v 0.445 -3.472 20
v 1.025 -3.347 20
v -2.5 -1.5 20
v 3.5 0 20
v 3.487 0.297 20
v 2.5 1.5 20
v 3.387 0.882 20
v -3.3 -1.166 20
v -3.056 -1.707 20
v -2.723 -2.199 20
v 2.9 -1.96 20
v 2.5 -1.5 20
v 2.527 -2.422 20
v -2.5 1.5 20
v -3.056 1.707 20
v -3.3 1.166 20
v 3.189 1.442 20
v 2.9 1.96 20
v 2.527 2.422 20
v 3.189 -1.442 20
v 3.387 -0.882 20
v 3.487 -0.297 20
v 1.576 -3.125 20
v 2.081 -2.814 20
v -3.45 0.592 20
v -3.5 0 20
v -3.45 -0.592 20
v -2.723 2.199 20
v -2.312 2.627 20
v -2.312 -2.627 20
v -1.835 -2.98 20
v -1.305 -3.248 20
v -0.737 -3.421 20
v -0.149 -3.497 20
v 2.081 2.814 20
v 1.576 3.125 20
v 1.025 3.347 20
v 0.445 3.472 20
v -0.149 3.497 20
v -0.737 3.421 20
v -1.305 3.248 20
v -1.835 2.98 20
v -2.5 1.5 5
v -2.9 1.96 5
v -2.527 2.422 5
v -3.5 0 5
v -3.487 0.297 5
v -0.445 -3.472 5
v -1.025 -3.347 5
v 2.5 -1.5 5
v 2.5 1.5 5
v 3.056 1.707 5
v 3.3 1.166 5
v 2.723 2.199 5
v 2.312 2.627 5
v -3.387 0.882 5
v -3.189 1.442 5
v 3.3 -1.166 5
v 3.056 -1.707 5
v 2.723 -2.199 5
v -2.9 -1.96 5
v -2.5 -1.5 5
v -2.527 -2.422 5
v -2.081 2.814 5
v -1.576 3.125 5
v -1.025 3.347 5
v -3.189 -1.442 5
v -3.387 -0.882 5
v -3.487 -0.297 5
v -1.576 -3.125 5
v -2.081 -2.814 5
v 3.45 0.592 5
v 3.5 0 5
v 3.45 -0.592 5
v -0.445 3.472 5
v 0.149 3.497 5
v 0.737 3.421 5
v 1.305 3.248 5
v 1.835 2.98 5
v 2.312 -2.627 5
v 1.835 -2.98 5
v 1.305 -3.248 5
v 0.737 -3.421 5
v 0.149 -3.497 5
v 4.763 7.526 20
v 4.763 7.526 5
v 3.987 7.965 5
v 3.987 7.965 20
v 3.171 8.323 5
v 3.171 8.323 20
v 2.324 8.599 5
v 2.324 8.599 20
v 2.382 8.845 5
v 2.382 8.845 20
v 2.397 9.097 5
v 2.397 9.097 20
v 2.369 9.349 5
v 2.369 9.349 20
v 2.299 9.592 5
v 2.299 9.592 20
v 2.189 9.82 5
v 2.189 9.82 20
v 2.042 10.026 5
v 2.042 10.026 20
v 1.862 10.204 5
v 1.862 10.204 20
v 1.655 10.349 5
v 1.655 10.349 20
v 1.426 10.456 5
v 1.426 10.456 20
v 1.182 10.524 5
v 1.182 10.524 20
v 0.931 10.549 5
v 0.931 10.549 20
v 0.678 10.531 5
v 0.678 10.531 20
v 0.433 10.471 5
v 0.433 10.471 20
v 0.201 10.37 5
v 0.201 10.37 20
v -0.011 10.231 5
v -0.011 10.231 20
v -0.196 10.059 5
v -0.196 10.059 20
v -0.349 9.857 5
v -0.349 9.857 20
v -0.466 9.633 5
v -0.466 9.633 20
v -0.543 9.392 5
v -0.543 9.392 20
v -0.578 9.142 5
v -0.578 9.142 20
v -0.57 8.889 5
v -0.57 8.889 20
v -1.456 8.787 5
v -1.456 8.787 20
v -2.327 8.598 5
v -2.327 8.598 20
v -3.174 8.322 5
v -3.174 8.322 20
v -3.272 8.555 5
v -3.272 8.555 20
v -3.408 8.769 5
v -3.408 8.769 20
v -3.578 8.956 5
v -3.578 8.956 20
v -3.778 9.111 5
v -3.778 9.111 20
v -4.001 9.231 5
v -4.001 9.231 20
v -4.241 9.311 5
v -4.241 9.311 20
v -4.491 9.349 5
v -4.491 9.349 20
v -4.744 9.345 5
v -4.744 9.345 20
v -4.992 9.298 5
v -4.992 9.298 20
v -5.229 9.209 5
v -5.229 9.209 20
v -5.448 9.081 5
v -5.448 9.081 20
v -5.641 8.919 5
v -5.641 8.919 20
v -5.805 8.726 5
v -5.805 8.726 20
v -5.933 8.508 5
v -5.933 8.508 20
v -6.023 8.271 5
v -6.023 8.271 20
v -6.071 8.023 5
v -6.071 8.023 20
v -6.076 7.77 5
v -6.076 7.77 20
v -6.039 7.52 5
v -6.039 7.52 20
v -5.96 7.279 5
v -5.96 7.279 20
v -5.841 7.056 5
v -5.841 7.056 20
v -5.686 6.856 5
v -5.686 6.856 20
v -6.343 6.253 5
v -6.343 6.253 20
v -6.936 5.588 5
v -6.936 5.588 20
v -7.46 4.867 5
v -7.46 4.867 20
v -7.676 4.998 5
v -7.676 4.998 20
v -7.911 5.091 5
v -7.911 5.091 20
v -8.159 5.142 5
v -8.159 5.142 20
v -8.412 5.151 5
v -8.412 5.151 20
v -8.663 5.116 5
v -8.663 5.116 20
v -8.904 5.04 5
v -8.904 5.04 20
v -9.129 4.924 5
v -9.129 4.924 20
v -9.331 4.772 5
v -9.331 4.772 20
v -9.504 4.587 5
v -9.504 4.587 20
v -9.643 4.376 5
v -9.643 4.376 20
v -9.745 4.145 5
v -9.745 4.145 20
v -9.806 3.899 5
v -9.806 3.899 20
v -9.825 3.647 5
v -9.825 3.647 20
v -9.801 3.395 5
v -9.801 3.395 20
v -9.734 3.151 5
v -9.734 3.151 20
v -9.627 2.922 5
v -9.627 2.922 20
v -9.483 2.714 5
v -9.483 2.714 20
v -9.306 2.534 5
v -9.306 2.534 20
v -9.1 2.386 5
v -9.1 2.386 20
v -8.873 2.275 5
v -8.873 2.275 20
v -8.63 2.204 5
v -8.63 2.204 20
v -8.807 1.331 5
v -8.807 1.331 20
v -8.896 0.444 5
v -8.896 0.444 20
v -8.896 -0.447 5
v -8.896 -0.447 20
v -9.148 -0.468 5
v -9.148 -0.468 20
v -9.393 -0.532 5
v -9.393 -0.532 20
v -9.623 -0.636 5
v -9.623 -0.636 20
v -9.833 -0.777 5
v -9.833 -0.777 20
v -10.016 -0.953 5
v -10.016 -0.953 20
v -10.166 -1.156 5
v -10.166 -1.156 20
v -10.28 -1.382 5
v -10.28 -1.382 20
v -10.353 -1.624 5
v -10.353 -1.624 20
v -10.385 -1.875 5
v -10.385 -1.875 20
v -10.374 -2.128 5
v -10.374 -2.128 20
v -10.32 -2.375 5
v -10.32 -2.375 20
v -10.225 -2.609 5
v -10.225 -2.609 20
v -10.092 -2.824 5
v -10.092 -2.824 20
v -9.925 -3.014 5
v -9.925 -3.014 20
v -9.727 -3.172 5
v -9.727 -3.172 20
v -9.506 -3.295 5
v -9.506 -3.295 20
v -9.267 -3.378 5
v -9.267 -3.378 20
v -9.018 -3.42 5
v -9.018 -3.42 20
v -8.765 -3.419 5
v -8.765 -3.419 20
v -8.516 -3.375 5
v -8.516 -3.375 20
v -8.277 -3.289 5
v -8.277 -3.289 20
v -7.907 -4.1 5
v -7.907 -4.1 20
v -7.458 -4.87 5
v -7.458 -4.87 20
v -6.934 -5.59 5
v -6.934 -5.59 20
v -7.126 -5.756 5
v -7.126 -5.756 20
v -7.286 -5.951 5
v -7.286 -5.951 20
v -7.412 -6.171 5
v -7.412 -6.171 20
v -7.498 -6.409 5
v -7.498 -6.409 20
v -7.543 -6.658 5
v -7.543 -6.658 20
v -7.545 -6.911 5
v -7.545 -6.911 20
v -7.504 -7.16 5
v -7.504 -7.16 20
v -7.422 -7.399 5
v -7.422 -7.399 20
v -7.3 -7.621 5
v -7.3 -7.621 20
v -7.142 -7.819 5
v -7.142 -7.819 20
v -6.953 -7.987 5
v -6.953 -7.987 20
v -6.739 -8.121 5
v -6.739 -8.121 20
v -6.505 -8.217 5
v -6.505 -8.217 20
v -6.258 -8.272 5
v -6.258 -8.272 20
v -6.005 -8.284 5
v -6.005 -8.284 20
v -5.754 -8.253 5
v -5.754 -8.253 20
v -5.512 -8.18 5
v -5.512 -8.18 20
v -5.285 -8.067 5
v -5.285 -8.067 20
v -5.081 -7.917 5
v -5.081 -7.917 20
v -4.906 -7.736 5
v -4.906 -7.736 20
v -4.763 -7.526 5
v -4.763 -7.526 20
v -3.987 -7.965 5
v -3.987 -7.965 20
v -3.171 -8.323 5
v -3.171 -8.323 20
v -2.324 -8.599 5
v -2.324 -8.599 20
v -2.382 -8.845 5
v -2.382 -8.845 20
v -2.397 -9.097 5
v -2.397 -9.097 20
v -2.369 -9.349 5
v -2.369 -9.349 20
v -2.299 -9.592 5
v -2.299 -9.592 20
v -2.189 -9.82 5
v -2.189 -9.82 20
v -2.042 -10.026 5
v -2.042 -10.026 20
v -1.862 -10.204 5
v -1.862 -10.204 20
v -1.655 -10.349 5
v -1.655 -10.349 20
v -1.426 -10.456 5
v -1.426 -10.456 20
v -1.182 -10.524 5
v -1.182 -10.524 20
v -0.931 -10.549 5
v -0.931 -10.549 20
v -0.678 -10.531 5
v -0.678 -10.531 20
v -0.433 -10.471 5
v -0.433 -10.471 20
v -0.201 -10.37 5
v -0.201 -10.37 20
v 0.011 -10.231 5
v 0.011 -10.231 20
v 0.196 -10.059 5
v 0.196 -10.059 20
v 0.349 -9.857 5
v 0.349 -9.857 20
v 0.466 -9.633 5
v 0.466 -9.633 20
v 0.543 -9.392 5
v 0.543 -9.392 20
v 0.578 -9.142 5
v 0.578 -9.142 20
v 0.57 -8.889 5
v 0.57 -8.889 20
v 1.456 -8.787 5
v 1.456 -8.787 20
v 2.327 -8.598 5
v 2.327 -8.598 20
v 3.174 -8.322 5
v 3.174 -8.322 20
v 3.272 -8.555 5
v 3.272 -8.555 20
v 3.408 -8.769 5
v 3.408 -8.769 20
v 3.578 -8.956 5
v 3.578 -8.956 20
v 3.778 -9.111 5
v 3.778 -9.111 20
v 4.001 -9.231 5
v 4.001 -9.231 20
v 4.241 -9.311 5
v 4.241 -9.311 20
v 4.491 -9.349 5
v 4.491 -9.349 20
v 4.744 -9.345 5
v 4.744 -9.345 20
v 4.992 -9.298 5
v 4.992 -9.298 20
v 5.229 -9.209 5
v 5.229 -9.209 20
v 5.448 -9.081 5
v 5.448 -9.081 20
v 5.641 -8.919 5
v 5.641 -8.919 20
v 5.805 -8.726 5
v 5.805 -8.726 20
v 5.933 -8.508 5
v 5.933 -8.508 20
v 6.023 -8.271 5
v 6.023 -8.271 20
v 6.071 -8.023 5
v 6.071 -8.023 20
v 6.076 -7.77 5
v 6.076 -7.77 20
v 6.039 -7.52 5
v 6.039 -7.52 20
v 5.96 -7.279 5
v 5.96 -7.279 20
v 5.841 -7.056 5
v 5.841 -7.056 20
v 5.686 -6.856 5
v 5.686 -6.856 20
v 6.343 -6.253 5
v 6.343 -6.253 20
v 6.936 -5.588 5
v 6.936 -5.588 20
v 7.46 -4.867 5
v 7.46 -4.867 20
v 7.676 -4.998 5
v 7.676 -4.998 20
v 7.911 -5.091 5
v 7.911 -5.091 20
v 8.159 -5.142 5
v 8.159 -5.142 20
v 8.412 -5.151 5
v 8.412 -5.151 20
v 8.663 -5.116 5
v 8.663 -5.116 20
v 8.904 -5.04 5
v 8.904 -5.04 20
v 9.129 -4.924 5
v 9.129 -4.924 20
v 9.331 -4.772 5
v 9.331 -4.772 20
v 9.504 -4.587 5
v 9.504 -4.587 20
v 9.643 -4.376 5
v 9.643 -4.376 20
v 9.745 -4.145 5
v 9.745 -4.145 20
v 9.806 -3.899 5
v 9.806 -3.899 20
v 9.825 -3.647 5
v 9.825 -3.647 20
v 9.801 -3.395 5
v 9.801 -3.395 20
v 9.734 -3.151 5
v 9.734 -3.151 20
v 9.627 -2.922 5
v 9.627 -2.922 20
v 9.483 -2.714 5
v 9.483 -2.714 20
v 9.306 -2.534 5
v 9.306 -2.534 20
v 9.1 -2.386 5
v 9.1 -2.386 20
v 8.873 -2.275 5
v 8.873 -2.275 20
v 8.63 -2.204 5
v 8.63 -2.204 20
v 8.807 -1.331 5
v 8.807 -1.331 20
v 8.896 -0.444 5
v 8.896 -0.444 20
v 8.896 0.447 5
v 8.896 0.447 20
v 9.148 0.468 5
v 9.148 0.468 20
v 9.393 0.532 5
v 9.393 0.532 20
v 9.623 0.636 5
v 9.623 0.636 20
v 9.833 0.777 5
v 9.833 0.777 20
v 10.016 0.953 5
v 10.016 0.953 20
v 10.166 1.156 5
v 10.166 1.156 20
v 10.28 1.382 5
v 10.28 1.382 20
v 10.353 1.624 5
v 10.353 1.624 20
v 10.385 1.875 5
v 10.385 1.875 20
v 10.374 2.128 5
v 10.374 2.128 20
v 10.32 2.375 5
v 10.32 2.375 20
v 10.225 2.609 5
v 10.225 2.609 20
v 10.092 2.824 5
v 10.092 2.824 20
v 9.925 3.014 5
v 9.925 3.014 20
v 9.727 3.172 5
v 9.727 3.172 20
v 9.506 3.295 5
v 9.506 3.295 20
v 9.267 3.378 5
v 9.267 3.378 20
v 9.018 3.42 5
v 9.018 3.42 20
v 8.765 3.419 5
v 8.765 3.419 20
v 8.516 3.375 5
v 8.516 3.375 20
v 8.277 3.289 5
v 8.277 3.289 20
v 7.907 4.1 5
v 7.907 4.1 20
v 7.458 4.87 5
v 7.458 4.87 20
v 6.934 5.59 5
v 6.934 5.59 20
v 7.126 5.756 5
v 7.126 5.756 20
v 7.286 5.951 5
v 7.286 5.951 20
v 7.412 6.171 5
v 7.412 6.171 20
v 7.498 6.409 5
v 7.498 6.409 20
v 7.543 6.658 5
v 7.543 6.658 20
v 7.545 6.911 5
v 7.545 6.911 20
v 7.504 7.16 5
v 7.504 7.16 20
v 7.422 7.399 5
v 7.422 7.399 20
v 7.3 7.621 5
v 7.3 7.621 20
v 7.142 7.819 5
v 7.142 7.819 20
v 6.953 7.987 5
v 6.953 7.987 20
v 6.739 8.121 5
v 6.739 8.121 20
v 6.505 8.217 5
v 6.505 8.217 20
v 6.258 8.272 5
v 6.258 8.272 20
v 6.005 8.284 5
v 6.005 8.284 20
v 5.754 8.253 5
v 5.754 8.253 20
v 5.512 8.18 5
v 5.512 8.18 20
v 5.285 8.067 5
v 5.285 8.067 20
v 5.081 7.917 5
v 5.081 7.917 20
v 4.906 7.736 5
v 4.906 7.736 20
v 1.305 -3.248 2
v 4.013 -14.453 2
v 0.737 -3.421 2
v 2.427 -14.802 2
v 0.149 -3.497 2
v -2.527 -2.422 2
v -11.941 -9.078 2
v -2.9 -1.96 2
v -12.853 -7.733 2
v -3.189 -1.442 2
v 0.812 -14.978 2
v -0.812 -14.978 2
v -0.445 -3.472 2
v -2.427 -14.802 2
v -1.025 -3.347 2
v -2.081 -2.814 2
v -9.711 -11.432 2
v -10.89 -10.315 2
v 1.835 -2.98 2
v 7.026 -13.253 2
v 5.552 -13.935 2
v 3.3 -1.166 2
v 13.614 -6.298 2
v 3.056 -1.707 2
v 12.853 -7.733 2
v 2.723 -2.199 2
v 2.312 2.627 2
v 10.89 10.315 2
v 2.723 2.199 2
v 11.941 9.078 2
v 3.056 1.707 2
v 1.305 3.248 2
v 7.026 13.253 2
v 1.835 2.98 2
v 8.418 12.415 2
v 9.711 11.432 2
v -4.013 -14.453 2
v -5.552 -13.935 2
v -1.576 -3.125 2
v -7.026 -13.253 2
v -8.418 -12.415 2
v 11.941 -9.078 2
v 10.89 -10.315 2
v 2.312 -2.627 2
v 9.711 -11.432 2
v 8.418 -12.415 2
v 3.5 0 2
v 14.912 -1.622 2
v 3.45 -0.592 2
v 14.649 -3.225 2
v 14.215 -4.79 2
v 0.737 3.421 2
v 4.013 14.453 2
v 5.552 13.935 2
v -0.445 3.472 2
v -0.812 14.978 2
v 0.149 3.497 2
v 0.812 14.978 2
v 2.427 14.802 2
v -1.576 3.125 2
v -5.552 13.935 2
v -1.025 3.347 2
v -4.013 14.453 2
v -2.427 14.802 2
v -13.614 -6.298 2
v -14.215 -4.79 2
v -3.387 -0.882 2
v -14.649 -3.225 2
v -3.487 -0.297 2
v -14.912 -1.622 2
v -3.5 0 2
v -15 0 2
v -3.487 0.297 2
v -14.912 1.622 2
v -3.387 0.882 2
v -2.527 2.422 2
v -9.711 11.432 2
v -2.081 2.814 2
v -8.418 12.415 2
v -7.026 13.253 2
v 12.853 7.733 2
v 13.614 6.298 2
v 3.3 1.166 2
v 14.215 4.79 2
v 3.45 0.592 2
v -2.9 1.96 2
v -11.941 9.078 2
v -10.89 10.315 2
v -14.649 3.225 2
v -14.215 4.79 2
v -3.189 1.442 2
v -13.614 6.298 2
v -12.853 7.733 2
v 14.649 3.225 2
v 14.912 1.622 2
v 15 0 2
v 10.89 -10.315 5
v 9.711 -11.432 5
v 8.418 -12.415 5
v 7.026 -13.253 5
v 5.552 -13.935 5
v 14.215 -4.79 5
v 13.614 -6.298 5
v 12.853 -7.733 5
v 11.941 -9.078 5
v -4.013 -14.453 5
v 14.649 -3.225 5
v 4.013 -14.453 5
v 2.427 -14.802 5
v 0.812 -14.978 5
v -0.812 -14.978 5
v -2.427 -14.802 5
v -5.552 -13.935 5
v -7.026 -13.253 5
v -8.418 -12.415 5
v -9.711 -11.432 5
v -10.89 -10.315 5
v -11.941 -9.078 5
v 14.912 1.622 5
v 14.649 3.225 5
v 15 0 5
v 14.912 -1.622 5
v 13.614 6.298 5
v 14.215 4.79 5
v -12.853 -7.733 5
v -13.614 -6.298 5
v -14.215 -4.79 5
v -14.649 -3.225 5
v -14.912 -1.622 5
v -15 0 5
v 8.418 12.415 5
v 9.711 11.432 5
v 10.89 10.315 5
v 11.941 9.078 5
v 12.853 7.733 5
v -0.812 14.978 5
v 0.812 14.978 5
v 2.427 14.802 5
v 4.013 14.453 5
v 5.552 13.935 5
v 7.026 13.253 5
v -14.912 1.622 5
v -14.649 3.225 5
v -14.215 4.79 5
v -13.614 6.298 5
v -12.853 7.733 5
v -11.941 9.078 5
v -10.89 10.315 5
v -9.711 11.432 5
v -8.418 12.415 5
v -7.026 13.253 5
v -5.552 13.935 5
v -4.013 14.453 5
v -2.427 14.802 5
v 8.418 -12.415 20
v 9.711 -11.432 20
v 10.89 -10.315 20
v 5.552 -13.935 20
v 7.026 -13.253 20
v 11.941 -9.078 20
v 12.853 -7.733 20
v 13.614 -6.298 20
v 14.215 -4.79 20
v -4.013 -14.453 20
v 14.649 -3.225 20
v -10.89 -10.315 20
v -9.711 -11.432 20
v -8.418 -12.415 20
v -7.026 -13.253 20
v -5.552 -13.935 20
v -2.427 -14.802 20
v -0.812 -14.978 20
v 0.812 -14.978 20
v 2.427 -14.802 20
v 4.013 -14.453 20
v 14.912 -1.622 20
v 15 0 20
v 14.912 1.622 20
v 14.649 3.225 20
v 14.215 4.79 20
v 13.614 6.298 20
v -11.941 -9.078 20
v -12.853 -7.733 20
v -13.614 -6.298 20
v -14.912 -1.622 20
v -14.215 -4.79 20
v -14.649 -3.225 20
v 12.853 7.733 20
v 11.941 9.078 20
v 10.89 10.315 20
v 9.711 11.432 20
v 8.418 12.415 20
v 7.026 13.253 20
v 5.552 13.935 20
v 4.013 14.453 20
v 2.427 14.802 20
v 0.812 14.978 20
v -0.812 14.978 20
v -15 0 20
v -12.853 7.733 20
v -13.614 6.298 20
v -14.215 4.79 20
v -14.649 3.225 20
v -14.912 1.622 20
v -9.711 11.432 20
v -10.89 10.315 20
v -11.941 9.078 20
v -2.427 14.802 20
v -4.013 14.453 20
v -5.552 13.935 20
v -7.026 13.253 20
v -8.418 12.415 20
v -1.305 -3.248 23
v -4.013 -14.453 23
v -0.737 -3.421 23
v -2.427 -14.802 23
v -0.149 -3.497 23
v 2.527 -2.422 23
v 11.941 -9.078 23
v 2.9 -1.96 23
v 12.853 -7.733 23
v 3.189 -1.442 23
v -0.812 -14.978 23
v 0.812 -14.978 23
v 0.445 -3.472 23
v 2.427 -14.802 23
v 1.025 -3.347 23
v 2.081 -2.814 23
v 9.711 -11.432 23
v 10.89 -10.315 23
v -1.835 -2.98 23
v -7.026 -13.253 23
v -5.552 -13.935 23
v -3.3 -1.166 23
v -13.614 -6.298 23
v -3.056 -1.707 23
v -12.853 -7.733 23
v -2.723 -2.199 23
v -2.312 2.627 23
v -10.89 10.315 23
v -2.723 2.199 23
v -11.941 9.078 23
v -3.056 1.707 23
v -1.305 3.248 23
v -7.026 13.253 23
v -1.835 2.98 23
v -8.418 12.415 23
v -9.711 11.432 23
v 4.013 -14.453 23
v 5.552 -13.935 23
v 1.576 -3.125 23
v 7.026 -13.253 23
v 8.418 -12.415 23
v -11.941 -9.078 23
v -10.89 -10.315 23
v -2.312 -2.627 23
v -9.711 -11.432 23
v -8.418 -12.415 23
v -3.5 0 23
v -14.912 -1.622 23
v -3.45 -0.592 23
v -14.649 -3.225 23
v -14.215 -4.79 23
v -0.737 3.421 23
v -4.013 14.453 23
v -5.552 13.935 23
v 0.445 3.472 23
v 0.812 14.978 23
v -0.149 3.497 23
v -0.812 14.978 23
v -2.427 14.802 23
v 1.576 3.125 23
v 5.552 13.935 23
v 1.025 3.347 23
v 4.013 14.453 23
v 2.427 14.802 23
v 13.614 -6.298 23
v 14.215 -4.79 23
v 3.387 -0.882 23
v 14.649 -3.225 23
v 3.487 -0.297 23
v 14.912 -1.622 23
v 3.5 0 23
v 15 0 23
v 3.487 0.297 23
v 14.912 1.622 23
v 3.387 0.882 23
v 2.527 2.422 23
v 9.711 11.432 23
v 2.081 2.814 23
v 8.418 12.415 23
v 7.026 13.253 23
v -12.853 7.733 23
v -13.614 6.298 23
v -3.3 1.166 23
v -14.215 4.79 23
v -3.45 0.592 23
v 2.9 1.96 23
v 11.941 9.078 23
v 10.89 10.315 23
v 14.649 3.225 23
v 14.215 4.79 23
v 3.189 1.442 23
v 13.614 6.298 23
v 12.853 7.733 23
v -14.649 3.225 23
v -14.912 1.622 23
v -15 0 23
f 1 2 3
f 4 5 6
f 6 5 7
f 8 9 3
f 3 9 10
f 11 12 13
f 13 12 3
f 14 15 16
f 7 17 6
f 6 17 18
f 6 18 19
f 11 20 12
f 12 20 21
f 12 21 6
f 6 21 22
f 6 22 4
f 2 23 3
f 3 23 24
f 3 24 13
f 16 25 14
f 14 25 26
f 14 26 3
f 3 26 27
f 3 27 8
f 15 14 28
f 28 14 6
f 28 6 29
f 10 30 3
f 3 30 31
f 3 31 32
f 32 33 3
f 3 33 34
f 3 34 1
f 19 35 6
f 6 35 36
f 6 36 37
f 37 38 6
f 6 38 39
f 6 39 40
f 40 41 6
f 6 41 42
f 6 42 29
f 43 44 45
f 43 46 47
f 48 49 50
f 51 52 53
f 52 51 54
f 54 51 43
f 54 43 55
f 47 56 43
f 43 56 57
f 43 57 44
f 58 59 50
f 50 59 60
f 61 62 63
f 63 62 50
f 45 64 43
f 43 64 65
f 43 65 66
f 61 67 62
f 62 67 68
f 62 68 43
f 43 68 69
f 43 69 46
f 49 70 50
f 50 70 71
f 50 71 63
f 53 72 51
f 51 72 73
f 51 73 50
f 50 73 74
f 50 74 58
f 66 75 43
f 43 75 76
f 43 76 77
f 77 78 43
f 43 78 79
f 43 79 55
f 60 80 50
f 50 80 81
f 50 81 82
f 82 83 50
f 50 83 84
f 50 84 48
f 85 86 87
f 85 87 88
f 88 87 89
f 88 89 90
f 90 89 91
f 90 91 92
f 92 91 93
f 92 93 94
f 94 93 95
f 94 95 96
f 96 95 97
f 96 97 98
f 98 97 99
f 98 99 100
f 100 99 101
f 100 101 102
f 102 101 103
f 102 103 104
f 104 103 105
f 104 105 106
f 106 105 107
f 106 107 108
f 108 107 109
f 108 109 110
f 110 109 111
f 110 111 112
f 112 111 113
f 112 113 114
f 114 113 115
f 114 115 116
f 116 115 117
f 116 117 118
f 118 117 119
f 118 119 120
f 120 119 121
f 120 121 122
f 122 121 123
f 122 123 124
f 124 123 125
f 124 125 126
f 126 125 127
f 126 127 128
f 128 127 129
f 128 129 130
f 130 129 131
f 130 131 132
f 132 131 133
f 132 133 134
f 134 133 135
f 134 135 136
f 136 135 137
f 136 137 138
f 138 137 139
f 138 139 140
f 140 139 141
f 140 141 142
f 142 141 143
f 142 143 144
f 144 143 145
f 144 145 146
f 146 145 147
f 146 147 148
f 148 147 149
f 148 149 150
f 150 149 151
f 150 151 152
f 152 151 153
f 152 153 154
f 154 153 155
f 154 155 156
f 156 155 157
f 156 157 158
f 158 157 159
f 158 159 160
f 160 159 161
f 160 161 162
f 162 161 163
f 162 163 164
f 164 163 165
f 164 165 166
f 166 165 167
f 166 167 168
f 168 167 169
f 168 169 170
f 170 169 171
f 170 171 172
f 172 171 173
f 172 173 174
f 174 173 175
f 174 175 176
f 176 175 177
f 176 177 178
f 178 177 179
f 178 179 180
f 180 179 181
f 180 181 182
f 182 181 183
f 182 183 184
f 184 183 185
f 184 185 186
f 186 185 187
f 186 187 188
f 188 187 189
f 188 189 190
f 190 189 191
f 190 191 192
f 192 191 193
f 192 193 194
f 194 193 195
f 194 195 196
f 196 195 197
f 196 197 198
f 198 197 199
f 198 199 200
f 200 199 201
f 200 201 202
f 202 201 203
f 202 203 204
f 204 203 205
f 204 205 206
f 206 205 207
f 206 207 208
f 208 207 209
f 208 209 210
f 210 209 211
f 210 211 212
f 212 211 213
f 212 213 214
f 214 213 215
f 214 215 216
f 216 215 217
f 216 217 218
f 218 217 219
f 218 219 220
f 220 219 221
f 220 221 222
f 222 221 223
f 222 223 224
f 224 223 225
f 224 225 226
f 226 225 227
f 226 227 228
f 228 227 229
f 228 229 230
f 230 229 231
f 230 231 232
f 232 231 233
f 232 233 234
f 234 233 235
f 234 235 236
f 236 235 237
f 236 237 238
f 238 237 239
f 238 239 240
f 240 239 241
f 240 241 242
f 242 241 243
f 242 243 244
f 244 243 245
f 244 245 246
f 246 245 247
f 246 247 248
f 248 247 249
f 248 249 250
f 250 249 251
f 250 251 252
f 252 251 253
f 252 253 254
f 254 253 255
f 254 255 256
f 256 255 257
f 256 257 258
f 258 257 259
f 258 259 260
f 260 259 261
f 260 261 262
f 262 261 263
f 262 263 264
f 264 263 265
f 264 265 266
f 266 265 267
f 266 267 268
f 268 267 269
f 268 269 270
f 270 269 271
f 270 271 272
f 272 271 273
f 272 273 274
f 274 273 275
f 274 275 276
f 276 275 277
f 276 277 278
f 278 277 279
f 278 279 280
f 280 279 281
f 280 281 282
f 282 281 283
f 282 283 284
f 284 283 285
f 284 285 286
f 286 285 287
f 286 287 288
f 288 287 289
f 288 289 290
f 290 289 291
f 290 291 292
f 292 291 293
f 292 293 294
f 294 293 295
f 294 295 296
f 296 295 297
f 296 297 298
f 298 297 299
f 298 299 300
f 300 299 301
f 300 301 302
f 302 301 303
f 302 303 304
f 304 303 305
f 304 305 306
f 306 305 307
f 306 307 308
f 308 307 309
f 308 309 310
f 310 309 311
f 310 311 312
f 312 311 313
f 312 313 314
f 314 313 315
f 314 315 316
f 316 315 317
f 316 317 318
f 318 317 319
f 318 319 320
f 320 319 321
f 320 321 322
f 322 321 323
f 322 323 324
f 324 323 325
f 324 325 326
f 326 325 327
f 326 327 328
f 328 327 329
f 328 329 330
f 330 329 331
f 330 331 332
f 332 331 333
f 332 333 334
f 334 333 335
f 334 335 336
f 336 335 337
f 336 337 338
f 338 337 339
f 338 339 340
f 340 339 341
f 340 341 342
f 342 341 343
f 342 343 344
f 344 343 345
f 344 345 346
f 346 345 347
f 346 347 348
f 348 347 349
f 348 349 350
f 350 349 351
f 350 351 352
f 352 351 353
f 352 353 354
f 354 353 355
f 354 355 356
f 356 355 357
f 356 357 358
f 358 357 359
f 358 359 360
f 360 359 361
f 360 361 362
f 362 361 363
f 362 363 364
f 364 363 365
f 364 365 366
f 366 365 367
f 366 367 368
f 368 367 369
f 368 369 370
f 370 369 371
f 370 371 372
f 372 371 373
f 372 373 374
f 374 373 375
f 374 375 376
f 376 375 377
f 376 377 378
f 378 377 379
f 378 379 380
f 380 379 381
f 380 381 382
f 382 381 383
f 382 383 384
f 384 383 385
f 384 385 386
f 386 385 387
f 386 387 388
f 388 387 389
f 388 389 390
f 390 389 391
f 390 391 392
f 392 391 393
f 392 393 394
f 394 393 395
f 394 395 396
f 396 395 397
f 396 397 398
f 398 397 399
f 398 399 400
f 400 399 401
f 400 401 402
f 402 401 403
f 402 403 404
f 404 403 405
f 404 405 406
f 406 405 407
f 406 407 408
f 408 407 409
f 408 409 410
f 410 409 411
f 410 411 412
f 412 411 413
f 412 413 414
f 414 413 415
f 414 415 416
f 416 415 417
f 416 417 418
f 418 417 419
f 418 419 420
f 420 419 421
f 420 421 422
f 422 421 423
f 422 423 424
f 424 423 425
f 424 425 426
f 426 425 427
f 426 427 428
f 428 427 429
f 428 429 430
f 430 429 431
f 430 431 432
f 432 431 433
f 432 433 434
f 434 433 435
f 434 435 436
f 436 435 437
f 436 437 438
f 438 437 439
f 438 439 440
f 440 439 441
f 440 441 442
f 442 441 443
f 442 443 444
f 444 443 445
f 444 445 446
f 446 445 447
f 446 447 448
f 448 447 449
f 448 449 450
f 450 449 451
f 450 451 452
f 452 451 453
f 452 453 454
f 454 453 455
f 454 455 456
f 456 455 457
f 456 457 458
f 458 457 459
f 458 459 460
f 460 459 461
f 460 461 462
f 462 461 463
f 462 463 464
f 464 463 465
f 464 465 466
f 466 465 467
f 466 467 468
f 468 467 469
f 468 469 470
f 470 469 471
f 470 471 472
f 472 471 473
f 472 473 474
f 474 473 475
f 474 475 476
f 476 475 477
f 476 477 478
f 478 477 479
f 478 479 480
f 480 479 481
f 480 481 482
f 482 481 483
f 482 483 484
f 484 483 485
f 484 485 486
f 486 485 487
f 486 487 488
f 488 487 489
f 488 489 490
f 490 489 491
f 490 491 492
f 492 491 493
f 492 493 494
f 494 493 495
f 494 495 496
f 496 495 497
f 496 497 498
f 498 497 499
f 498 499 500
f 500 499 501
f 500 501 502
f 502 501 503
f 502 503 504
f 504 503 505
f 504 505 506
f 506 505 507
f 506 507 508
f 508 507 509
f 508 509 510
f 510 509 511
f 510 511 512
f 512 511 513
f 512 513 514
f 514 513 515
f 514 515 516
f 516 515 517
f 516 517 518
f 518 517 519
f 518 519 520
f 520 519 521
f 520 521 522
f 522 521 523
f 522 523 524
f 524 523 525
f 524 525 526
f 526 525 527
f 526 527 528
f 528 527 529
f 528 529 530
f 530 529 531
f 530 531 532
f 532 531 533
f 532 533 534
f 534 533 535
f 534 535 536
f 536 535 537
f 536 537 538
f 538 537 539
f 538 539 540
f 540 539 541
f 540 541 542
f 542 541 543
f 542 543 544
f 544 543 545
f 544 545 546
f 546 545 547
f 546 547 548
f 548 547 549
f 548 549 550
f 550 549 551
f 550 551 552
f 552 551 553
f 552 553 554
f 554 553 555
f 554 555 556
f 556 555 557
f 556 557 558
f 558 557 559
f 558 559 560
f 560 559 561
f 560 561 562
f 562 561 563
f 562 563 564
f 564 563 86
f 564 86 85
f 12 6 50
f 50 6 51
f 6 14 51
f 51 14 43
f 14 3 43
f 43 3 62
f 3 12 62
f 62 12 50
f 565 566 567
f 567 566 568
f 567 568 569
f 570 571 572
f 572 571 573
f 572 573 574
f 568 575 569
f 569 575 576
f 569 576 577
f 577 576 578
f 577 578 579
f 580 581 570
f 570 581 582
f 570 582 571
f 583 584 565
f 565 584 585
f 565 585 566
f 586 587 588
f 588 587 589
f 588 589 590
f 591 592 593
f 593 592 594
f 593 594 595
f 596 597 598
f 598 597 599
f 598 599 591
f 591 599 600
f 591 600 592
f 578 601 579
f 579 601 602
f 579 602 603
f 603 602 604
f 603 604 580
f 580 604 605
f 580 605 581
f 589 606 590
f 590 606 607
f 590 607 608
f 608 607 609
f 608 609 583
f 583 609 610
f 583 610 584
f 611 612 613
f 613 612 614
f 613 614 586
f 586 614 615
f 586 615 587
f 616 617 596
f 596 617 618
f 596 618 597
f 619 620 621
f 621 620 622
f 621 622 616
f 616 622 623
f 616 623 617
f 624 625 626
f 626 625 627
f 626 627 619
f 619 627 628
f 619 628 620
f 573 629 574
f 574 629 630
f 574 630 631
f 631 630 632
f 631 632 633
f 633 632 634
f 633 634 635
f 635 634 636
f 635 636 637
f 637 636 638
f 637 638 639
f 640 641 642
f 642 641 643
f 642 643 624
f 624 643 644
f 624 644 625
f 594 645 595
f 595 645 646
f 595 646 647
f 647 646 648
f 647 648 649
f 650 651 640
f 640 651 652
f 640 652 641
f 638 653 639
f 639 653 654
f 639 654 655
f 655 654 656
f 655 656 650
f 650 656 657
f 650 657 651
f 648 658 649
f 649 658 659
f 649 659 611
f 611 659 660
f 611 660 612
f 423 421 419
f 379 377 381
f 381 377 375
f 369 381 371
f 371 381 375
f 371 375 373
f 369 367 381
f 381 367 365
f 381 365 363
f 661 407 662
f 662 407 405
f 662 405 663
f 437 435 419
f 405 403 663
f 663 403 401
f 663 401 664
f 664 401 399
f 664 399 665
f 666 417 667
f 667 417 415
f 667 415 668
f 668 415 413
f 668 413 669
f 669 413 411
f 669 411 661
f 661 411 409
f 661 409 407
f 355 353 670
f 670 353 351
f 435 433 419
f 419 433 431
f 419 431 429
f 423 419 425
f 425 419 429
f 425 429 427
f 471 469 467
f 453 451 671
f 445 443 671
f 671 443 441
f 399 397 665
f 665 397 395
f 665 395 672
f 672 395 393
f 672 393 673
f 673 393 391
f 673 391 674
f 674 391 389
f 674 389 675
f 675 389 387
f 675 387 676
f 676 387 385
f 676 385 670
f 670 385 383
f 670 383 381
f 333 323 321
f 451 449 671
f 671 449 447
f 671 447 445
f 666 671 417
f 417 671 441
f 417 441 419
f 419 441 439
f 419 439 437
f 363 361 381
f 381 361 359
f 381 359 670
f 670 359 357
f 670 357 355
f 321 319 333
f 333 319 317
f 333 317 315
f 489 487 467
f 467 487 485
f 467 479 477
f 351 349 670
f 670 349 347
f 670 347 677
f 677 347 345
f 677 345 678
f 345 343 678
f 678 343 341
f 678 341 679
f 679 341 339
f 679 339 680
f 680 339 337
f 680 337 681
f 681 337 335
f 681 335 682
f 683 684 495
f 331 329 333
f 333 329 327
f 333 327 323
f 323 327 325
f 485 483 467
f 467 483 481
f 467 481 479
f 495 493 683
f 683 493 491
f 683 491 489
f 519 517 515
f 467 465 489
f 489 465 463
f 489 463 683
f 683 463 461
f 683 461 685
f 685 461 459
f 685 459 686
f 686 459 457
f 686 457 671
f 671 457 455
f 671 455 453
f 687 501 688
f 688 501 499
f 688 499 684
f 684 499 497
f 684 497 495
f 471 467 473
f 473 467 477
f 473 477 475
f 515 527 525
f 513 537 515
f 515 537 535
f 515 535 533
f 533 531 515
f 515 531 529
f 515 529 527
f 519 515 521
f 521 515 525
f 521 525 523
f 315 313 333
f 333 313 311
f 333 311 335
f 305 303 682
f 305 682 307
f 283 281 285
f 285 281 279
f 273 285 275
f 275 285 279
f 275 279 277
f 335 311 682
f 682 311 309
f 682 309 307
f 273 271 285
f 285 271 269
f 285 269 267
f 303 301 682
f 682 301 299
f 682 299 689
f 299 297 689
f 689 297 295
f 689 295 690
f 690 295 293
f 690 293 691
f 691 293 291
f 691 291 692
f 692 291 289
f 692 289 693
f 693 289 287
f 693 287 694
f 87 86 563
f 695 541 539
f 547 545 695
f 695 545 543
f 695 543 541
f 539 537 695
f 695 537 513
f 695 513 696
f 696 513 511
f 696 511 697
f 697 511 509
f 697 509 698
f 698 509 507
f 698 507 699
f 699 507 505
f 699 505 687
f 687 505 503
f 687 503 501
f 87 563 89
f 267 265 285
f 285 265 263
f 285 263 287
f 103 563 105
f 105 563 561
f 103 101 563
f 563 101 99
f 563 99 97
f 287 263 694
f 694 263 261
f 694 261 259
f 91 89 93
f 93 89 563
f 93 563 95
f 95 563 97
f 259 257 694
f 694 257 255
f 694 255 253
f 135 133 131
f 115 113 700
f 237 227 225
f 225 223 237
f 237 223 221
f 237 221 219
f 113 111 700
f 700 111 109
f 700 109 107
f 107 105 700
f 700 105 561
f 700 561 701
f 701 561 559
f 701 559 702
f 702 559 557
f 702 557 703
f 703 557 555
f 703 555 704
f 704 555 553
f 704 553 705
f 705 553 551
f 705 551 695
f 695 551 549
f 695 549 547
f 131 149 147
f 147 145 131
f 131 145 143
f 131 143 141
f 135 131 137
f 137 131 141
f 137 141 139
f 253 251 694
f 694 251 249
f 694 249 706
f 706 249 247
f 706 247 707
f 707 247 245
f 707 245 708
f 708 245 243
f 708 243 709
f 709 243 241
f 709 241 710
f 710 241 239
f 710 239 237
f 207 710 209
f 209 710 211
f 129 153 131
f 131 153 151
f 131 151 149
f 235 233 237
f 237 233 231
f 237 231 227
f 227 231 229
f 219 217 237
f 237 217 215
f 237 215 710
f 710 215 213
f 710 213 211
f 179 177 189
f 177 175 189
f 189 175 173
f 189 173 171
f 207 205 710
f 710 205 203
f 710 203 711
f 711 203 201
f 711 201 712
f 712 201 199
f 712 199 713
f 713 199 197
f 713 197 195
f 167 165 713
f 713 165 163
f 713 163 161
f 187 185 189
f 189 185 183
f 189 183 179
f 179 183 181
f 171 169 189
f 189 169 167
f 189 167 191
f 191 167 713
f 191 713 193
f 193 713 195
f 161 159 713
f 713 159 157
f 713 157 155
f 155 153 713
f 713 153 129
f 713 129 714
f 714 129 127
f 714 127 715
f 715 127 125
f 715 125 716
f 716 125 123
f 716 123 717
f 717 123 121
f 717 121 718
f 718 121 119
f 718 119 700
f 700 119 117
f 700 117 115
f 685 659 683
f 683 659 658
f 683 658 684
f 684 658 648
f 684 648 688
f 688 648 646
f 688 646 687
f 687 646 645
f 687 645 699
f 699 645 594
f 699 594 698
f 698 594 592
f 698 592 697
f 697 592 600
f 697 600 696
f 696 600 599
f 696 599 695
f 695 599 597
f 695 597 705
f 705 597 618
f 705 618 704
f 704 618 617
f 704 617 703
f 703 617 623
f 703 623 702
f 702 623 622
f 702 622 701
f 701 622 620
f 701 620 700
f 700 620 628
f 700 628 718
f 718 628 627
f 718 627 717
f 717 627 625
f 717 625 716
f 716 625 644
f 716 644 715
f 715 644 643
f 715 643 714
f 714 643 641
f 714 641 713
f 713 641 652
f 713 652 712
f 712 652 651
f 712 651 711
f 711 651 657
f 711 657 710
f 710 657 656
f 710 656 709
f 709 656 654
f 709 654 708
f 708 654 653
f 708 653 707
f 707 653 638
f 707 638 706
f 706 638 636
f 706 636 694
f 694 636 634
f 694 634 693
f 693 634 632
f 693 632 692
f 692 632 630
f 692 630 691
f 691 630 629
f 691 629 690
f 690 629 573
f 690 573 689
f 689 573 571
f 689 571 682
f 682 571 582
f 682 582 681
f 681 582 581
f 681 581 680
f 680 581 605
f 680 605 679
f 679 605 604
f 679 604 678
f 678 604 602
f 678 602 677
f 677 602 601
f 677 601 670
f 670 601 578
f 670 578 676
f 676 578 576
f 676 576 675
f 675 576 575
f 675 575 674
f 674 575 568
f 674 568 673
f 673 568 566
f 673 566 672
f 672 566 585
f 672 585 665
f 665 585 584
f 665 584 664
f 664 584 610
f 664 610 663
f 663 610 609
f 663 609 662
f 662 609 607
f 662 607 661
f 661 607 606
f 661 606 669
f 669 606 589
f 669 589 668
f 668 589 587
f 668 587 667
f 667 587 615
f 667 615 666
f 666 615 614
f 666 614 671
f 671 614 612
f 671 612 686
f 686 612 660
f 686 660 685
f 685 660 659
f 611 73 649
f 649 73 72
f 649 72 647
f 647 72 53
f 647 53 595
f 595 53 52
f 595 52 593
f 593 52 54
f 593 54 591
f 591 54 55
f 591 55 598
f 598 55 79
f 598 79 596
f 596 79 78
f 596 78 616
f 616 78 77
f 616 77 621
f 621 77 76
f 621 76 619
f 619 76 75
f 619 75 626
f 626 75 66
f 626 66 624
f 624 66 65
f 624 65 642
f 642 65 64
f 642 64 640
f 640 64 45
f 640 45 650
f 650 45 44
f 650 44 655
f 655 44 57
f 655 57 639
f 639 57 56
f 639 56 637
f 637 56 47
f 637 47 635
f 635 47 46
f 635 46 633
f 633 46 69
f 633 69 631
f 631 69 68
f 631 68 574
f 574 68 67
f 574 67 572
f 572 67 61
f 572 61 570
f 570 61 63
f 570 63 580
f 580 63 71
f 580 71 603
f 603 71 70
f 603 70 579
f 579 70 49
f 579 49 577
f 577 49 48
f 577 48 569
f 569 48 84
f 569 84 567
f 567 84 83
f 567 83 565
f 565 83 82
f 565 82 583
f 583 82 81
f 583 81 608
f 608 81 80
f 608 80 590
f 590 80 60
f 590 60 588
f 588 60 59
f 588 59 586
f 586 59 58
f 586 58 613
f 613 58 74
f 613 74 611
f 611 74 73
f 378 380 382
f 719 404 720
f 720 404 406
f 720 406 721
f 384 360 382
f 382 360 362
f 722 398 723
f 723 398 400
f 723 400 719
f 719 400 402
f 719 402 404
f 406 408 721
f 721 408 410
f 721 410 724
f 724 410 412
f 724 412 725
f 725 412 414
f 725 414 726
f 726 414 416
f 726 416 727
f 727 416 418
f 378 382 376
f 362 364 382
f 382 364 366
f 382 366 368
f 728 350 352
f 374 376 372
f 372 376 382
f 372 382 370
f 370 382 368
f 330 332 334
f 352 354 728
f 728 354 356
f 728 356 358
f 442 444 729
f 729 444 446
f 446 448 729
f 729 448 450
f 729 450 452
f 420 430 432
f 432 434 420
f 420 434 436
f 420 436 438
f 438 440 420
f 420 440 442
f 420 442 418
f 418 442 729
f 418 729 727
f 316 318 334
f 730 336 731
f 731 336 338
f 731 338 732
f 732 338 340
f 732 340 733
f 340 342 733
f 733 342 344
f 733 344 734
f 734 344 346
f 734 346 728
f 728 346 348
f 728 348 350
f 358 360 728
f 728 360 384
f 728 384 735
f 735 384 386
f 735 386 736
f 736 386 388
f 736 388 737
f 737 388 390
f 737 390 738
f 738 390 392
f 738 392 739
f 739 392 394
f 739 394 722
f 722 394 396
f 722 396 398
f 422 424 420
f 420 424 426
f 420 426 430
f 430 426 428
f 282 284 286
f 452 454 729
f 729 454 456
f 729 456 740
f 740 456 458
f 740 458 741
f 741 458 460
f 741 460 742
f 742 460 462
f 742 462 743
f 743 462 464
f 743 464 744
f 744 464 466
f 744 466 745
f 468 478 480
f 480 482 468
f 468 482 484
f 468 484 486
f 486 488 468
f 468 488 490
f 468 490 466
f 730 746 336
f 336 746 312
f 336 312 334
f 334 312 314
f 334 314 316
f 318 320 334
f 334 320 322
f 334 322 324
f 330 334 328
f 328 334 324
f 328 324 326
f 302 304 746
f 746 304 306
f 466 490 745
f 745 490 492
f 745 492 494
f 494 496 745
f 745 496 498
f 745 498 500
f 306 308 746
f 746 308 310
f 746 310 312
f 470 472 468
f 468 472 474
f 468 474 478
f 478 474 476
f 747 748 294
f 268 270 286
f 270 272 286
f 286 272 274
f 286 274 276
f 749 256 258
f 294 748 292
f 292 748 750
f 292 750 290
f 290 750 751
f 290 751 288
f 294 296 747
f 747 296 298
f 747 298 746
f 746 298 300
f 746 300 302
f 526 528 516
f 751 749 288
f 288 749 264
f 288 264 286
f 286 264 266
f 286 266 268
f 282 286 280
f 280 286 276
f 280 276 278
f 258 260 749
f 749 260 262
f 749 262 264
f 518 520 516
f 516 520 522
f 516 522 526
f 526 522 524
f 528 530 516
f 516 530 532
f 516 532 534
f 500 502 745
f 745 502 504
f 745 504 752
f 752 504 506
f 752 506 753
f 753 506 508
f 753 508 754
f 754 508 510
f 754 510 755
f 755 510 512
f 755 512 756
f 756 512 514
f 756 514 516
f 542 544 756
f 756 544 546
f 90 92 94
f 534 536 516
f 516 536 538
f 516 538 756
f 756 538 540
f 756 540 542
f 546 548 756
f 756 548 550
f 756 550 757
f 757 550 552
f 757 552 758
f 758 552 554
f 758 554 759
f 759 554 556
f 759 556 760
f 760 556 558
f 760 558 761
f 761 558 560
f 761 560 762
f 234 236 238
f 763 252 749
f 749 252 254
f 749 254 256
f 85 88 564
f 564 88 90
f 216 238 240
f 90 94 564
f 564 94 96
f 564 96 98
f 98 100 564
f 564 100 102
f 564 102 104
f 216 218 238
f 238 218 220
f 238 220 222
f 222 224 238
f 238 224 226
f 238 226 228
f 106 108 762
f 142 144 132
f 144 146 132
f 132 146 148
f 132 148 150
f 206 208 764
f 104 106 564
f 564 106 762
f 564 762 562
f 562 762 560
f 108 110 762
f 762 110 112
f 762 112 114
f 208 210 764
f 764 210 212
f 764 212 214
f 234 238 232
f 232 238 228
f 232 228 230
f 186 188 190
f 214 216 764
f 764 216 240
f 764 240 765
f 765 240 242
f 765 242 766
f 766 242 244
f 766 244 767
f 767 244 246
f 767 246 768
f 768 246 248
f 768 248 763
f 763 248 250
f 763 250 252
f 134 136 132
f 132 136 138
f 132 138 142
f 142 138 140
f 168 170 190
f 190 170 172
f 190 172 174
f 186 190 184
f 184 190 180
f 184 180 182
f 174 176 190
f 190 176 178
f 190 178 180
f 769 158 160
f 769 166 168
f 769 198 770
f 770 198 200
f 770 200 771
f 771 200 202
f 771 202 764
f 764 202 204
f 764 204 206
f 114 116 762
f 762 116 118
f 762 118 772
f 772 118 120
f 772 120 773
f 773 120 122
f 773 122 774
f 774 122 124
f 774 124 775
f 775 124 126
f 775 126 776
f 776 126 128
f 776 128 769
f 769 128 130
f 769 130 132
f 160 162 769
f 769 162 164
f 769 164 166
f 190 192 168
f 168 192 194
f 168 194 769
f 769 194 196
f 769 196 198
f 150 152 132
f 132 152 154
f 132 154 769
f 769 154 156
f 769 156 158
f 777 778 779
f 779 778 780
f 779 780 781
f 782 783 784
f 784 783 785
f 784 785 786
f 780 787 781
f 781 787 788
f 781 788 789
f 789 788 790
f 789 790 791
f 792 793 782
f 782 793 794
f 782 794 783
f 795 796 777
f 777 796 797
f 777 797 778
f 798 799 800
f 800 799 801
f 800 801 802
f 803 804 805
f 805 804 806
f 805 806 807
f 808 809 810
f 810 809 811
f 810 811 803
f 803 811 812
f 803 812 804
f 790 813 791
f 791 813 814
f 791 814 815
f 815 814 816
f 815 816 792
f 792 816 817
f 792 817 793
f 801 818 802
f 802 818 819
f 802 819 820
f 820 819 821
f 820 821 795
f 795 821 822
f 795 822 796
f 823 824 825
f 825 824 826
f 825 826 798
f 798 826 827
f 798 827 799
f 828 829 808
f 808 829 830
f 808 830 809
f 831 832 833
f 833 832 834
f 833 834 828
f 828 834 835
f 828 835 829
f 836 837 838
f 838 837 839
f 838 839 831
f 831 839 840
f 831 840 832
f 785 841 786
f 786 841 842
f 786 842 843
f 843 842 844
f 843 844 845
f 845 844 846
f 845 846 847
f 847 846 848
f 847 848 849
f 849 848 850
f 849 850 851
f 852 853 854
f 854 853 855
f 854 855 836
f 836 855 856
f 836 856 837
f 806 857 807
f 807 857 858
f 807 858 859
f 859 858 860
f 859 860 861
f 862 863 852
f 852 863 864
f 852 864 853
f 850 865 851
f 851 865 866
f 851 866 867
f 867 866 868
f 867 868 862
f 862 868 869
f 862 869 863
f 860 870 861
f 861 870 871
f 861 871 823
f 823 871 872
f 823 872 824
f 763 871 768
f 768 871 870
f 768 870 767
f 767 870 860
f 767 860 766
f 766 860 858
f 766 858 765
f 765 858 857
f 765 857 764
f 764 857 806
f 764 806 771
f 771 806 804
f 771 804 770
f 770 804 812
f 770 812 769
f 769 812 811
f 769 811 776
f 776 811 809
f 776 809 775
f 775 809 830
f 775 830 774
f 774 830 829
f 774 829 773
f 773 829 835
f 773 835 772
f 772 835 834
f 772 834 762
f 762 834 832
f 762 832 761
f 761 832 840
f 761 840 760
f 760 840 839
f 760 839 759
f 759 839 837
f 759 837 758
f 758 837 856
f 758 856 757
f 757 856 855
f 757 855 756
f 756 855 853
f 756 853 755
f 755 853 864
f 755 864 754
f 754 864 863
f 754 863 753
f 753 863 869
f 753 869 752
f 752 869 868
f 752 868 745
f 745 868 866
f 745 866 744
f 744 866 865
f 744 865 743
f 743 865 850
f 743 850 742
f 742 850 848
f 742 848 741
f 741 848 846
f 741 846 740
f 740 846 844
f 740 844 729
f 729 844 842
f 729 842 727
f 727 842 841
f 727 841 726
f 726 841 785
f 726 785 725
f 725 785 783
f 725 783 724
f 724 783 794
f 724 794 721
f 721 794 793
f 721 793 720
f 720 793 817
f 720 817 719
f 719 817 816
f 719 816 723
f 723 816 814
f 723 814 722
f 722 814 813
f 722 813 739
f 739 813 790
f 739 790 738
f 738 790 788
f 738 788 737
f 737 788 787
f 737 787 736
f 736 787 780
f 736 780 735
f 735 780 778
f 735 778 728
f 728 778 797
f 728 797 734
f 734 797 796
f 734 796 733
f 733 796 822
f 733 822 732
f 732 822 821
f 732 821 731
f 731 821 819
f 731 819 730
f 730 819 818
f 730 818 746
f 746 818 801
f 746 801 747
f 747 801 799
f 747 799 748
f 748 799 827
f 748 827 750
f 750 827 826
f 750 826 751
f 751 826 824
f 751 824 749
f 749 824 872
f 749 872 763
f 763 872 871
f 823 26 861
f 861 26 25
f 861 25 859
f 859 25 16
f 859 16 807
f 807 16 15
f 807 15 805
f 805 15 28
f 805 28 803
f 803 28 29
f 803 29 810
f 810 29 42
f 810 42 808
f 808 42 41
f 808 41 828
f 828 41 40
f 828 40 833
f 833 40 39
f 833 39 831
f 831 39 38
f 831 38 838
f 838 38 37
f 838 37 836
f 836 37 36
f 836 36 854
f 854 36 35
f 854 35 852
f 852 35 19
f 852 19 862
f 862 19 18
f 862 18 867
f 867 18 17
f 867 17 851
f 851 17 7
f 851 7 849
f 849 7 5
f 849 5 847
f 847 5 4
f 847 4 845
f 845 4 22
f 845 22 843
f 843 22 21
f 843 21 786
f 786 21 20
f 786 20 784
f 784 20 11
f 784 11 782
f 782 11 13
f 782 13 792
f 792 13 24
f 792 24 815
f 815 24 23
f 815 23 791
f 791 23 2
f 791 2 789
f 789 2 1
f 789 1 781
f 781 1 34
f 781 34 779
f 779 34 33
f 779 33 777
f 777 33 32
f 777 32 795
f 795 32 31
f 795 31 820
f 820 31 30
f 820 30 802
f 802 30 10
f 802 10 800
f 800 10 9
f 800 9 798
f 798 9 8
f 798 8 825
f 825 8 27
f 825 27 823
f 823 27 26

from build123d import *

# Parameters (mm, degrees)
SKETCH2_W           = 5
SKETCH2_H           = 3
BOSS_EXTRUDE1_DEPTH = 15
SKETCH3_R           = 15
SKETCH3_R_2         = 3.5
BOSS_EXTRUDE2_DEPTH = 3
BOSS_EXTRUDE3_START = 3
SKETCH4_R           = 15
SKETCH4_R_2         = 3.5
BOSS_EXTRUDE3_DEPTH = 3


# Read off the part's stored shape, not the designer's step: Pulley part01 GT2 6mm.STEP
with BuildPart() as part:
    # Sketch2 → Boss-Extrude1 (new body)
    with BuildSketch(Plane.XY.offset(5)):
        with BuildLine():
            ThreePointArc((6.934106351, 5.59049504), (7.051433078, 7.907185894), (4.763236954, 7.526422749))
            ThreePointArc((4.763236954, 7.526422749), (3.583838208, 8.154236284), (2.32379934, 8.598570946))
            ThreePointArc((2.32379934, 8.598570946), (1.057001937, 10.541776134), (-0.570380652, 8.888764346))
            ThreePointArc((-0.570380652, 8.888764346), (-1.893553819, 8.703442975), (-3.174120037, 8.322285003))
            ThreePointArc((-3.174120037, 8.322285003), (-5.341168017, 9.149766191), (-5.686132237, 6.855900077))
            ThreePointArc((-5.686132237, 6.855900077), (-6.647672646, 5.928230265), (-7.459633444, 4.86716905))
            ThreePointArc((-7.459633444, 4.86716905), (-9.699193326, 4.262856549), (-8.629974569, 2.204315))
            ThreePointArc((-8.629974569, 2.204315), (-8.862606466, 0.888635084), (-8.895820416, -0.447040053))
            ThreePointArc((-8.895820416, -0.447040053), (-10.352456447, -2.252319406), (-8.277459935, -3.289243485))
            ThreePointArc((-8.277459935, -3.289243485), (-7.692325842, -4.490388494), (-6.934106344, -5.590495048))
            ThreePointArc((-6.934106344, -5.590495048), (-7.05143307, -7.907185904), (-4.763236946, -7.526422754))
            ThreePointArc((-4.763236946, -7.526422754), (-3.583838199, -8.154236288), (-2.323799332, -8.598570948))
            ThreePointArc((-2.323799332, -8.598570948), (-1.057001929, -10.541776143), (0.570380658, -8.888764345))
            ThreePointArc((0.570380658, -8.888764345), (1.893553823, -8.703442974), (3.174120041, -8.322285002))
            ThreePointArc((3.174120041, -8.322285002), (5.341168023, -9.149766199), (5.686132236, -6.855900078))
            ThreePointArc((5.686132236, -6.855900078), (6.647672645, -5.928230266), (7.459633443, -4.867169052))
            ThreePointArc((7.459633443, -4.867169052), (9.699193332, -4.262856559), (8.629974567, -2.204315006))
            ThreePointArc((8.629974567, -2.204315006), (8.862606465, -0.888635092), (8.895820416, 0.447040044))
            ThreePointArc((8.895820416, 0.447040044), (10.352456454, 2.252319396), (8.277459939, 3.289243476))
            ThreePointArc((8.277459939, 3.289243476), (7.692325847, 4.490388485), (6.934106351, 5.59049504))
        make_face()
        Rectangle(SKETCH2_W, SKETCH2_H, mode=Mode.SUBTRACT)
    extrude(amount=BOSS_EXTRUDE1_DEPTH)

    # Sketch3 → Boss-Extrude2 (add)
    with BuildSketch(Plane(origin=(0, 0, 5), x_dir=(-1, 0, 0), z_dir=(0, 0, -1))):
        Circle(SKETCH3_R)
        Circle(SKETCH3_R_2, mode=Mode.SUBTRACT)
    extrude(amount=BOSS_EXTRUDE2_DEPTH)

    # Sketch4 → Boss-Extrude3 (add)
    with BuildSketch(Plane.XY.offset(20).offset(BOSS_EXTRUDE3_START)):
        with Locations(Location((0, 0, 0), (0, 0, 180))):
            Circle(SKETCH4_R)
        with Locations(Location((0, 0, 0), (0, 0, 180))):
            Circle(SKETCH4_R_2, mode=Mode.SUBTRACT)
    extrude(amount=-BOSS_EXTRUDE3_DEPTH)


solid = part.part
